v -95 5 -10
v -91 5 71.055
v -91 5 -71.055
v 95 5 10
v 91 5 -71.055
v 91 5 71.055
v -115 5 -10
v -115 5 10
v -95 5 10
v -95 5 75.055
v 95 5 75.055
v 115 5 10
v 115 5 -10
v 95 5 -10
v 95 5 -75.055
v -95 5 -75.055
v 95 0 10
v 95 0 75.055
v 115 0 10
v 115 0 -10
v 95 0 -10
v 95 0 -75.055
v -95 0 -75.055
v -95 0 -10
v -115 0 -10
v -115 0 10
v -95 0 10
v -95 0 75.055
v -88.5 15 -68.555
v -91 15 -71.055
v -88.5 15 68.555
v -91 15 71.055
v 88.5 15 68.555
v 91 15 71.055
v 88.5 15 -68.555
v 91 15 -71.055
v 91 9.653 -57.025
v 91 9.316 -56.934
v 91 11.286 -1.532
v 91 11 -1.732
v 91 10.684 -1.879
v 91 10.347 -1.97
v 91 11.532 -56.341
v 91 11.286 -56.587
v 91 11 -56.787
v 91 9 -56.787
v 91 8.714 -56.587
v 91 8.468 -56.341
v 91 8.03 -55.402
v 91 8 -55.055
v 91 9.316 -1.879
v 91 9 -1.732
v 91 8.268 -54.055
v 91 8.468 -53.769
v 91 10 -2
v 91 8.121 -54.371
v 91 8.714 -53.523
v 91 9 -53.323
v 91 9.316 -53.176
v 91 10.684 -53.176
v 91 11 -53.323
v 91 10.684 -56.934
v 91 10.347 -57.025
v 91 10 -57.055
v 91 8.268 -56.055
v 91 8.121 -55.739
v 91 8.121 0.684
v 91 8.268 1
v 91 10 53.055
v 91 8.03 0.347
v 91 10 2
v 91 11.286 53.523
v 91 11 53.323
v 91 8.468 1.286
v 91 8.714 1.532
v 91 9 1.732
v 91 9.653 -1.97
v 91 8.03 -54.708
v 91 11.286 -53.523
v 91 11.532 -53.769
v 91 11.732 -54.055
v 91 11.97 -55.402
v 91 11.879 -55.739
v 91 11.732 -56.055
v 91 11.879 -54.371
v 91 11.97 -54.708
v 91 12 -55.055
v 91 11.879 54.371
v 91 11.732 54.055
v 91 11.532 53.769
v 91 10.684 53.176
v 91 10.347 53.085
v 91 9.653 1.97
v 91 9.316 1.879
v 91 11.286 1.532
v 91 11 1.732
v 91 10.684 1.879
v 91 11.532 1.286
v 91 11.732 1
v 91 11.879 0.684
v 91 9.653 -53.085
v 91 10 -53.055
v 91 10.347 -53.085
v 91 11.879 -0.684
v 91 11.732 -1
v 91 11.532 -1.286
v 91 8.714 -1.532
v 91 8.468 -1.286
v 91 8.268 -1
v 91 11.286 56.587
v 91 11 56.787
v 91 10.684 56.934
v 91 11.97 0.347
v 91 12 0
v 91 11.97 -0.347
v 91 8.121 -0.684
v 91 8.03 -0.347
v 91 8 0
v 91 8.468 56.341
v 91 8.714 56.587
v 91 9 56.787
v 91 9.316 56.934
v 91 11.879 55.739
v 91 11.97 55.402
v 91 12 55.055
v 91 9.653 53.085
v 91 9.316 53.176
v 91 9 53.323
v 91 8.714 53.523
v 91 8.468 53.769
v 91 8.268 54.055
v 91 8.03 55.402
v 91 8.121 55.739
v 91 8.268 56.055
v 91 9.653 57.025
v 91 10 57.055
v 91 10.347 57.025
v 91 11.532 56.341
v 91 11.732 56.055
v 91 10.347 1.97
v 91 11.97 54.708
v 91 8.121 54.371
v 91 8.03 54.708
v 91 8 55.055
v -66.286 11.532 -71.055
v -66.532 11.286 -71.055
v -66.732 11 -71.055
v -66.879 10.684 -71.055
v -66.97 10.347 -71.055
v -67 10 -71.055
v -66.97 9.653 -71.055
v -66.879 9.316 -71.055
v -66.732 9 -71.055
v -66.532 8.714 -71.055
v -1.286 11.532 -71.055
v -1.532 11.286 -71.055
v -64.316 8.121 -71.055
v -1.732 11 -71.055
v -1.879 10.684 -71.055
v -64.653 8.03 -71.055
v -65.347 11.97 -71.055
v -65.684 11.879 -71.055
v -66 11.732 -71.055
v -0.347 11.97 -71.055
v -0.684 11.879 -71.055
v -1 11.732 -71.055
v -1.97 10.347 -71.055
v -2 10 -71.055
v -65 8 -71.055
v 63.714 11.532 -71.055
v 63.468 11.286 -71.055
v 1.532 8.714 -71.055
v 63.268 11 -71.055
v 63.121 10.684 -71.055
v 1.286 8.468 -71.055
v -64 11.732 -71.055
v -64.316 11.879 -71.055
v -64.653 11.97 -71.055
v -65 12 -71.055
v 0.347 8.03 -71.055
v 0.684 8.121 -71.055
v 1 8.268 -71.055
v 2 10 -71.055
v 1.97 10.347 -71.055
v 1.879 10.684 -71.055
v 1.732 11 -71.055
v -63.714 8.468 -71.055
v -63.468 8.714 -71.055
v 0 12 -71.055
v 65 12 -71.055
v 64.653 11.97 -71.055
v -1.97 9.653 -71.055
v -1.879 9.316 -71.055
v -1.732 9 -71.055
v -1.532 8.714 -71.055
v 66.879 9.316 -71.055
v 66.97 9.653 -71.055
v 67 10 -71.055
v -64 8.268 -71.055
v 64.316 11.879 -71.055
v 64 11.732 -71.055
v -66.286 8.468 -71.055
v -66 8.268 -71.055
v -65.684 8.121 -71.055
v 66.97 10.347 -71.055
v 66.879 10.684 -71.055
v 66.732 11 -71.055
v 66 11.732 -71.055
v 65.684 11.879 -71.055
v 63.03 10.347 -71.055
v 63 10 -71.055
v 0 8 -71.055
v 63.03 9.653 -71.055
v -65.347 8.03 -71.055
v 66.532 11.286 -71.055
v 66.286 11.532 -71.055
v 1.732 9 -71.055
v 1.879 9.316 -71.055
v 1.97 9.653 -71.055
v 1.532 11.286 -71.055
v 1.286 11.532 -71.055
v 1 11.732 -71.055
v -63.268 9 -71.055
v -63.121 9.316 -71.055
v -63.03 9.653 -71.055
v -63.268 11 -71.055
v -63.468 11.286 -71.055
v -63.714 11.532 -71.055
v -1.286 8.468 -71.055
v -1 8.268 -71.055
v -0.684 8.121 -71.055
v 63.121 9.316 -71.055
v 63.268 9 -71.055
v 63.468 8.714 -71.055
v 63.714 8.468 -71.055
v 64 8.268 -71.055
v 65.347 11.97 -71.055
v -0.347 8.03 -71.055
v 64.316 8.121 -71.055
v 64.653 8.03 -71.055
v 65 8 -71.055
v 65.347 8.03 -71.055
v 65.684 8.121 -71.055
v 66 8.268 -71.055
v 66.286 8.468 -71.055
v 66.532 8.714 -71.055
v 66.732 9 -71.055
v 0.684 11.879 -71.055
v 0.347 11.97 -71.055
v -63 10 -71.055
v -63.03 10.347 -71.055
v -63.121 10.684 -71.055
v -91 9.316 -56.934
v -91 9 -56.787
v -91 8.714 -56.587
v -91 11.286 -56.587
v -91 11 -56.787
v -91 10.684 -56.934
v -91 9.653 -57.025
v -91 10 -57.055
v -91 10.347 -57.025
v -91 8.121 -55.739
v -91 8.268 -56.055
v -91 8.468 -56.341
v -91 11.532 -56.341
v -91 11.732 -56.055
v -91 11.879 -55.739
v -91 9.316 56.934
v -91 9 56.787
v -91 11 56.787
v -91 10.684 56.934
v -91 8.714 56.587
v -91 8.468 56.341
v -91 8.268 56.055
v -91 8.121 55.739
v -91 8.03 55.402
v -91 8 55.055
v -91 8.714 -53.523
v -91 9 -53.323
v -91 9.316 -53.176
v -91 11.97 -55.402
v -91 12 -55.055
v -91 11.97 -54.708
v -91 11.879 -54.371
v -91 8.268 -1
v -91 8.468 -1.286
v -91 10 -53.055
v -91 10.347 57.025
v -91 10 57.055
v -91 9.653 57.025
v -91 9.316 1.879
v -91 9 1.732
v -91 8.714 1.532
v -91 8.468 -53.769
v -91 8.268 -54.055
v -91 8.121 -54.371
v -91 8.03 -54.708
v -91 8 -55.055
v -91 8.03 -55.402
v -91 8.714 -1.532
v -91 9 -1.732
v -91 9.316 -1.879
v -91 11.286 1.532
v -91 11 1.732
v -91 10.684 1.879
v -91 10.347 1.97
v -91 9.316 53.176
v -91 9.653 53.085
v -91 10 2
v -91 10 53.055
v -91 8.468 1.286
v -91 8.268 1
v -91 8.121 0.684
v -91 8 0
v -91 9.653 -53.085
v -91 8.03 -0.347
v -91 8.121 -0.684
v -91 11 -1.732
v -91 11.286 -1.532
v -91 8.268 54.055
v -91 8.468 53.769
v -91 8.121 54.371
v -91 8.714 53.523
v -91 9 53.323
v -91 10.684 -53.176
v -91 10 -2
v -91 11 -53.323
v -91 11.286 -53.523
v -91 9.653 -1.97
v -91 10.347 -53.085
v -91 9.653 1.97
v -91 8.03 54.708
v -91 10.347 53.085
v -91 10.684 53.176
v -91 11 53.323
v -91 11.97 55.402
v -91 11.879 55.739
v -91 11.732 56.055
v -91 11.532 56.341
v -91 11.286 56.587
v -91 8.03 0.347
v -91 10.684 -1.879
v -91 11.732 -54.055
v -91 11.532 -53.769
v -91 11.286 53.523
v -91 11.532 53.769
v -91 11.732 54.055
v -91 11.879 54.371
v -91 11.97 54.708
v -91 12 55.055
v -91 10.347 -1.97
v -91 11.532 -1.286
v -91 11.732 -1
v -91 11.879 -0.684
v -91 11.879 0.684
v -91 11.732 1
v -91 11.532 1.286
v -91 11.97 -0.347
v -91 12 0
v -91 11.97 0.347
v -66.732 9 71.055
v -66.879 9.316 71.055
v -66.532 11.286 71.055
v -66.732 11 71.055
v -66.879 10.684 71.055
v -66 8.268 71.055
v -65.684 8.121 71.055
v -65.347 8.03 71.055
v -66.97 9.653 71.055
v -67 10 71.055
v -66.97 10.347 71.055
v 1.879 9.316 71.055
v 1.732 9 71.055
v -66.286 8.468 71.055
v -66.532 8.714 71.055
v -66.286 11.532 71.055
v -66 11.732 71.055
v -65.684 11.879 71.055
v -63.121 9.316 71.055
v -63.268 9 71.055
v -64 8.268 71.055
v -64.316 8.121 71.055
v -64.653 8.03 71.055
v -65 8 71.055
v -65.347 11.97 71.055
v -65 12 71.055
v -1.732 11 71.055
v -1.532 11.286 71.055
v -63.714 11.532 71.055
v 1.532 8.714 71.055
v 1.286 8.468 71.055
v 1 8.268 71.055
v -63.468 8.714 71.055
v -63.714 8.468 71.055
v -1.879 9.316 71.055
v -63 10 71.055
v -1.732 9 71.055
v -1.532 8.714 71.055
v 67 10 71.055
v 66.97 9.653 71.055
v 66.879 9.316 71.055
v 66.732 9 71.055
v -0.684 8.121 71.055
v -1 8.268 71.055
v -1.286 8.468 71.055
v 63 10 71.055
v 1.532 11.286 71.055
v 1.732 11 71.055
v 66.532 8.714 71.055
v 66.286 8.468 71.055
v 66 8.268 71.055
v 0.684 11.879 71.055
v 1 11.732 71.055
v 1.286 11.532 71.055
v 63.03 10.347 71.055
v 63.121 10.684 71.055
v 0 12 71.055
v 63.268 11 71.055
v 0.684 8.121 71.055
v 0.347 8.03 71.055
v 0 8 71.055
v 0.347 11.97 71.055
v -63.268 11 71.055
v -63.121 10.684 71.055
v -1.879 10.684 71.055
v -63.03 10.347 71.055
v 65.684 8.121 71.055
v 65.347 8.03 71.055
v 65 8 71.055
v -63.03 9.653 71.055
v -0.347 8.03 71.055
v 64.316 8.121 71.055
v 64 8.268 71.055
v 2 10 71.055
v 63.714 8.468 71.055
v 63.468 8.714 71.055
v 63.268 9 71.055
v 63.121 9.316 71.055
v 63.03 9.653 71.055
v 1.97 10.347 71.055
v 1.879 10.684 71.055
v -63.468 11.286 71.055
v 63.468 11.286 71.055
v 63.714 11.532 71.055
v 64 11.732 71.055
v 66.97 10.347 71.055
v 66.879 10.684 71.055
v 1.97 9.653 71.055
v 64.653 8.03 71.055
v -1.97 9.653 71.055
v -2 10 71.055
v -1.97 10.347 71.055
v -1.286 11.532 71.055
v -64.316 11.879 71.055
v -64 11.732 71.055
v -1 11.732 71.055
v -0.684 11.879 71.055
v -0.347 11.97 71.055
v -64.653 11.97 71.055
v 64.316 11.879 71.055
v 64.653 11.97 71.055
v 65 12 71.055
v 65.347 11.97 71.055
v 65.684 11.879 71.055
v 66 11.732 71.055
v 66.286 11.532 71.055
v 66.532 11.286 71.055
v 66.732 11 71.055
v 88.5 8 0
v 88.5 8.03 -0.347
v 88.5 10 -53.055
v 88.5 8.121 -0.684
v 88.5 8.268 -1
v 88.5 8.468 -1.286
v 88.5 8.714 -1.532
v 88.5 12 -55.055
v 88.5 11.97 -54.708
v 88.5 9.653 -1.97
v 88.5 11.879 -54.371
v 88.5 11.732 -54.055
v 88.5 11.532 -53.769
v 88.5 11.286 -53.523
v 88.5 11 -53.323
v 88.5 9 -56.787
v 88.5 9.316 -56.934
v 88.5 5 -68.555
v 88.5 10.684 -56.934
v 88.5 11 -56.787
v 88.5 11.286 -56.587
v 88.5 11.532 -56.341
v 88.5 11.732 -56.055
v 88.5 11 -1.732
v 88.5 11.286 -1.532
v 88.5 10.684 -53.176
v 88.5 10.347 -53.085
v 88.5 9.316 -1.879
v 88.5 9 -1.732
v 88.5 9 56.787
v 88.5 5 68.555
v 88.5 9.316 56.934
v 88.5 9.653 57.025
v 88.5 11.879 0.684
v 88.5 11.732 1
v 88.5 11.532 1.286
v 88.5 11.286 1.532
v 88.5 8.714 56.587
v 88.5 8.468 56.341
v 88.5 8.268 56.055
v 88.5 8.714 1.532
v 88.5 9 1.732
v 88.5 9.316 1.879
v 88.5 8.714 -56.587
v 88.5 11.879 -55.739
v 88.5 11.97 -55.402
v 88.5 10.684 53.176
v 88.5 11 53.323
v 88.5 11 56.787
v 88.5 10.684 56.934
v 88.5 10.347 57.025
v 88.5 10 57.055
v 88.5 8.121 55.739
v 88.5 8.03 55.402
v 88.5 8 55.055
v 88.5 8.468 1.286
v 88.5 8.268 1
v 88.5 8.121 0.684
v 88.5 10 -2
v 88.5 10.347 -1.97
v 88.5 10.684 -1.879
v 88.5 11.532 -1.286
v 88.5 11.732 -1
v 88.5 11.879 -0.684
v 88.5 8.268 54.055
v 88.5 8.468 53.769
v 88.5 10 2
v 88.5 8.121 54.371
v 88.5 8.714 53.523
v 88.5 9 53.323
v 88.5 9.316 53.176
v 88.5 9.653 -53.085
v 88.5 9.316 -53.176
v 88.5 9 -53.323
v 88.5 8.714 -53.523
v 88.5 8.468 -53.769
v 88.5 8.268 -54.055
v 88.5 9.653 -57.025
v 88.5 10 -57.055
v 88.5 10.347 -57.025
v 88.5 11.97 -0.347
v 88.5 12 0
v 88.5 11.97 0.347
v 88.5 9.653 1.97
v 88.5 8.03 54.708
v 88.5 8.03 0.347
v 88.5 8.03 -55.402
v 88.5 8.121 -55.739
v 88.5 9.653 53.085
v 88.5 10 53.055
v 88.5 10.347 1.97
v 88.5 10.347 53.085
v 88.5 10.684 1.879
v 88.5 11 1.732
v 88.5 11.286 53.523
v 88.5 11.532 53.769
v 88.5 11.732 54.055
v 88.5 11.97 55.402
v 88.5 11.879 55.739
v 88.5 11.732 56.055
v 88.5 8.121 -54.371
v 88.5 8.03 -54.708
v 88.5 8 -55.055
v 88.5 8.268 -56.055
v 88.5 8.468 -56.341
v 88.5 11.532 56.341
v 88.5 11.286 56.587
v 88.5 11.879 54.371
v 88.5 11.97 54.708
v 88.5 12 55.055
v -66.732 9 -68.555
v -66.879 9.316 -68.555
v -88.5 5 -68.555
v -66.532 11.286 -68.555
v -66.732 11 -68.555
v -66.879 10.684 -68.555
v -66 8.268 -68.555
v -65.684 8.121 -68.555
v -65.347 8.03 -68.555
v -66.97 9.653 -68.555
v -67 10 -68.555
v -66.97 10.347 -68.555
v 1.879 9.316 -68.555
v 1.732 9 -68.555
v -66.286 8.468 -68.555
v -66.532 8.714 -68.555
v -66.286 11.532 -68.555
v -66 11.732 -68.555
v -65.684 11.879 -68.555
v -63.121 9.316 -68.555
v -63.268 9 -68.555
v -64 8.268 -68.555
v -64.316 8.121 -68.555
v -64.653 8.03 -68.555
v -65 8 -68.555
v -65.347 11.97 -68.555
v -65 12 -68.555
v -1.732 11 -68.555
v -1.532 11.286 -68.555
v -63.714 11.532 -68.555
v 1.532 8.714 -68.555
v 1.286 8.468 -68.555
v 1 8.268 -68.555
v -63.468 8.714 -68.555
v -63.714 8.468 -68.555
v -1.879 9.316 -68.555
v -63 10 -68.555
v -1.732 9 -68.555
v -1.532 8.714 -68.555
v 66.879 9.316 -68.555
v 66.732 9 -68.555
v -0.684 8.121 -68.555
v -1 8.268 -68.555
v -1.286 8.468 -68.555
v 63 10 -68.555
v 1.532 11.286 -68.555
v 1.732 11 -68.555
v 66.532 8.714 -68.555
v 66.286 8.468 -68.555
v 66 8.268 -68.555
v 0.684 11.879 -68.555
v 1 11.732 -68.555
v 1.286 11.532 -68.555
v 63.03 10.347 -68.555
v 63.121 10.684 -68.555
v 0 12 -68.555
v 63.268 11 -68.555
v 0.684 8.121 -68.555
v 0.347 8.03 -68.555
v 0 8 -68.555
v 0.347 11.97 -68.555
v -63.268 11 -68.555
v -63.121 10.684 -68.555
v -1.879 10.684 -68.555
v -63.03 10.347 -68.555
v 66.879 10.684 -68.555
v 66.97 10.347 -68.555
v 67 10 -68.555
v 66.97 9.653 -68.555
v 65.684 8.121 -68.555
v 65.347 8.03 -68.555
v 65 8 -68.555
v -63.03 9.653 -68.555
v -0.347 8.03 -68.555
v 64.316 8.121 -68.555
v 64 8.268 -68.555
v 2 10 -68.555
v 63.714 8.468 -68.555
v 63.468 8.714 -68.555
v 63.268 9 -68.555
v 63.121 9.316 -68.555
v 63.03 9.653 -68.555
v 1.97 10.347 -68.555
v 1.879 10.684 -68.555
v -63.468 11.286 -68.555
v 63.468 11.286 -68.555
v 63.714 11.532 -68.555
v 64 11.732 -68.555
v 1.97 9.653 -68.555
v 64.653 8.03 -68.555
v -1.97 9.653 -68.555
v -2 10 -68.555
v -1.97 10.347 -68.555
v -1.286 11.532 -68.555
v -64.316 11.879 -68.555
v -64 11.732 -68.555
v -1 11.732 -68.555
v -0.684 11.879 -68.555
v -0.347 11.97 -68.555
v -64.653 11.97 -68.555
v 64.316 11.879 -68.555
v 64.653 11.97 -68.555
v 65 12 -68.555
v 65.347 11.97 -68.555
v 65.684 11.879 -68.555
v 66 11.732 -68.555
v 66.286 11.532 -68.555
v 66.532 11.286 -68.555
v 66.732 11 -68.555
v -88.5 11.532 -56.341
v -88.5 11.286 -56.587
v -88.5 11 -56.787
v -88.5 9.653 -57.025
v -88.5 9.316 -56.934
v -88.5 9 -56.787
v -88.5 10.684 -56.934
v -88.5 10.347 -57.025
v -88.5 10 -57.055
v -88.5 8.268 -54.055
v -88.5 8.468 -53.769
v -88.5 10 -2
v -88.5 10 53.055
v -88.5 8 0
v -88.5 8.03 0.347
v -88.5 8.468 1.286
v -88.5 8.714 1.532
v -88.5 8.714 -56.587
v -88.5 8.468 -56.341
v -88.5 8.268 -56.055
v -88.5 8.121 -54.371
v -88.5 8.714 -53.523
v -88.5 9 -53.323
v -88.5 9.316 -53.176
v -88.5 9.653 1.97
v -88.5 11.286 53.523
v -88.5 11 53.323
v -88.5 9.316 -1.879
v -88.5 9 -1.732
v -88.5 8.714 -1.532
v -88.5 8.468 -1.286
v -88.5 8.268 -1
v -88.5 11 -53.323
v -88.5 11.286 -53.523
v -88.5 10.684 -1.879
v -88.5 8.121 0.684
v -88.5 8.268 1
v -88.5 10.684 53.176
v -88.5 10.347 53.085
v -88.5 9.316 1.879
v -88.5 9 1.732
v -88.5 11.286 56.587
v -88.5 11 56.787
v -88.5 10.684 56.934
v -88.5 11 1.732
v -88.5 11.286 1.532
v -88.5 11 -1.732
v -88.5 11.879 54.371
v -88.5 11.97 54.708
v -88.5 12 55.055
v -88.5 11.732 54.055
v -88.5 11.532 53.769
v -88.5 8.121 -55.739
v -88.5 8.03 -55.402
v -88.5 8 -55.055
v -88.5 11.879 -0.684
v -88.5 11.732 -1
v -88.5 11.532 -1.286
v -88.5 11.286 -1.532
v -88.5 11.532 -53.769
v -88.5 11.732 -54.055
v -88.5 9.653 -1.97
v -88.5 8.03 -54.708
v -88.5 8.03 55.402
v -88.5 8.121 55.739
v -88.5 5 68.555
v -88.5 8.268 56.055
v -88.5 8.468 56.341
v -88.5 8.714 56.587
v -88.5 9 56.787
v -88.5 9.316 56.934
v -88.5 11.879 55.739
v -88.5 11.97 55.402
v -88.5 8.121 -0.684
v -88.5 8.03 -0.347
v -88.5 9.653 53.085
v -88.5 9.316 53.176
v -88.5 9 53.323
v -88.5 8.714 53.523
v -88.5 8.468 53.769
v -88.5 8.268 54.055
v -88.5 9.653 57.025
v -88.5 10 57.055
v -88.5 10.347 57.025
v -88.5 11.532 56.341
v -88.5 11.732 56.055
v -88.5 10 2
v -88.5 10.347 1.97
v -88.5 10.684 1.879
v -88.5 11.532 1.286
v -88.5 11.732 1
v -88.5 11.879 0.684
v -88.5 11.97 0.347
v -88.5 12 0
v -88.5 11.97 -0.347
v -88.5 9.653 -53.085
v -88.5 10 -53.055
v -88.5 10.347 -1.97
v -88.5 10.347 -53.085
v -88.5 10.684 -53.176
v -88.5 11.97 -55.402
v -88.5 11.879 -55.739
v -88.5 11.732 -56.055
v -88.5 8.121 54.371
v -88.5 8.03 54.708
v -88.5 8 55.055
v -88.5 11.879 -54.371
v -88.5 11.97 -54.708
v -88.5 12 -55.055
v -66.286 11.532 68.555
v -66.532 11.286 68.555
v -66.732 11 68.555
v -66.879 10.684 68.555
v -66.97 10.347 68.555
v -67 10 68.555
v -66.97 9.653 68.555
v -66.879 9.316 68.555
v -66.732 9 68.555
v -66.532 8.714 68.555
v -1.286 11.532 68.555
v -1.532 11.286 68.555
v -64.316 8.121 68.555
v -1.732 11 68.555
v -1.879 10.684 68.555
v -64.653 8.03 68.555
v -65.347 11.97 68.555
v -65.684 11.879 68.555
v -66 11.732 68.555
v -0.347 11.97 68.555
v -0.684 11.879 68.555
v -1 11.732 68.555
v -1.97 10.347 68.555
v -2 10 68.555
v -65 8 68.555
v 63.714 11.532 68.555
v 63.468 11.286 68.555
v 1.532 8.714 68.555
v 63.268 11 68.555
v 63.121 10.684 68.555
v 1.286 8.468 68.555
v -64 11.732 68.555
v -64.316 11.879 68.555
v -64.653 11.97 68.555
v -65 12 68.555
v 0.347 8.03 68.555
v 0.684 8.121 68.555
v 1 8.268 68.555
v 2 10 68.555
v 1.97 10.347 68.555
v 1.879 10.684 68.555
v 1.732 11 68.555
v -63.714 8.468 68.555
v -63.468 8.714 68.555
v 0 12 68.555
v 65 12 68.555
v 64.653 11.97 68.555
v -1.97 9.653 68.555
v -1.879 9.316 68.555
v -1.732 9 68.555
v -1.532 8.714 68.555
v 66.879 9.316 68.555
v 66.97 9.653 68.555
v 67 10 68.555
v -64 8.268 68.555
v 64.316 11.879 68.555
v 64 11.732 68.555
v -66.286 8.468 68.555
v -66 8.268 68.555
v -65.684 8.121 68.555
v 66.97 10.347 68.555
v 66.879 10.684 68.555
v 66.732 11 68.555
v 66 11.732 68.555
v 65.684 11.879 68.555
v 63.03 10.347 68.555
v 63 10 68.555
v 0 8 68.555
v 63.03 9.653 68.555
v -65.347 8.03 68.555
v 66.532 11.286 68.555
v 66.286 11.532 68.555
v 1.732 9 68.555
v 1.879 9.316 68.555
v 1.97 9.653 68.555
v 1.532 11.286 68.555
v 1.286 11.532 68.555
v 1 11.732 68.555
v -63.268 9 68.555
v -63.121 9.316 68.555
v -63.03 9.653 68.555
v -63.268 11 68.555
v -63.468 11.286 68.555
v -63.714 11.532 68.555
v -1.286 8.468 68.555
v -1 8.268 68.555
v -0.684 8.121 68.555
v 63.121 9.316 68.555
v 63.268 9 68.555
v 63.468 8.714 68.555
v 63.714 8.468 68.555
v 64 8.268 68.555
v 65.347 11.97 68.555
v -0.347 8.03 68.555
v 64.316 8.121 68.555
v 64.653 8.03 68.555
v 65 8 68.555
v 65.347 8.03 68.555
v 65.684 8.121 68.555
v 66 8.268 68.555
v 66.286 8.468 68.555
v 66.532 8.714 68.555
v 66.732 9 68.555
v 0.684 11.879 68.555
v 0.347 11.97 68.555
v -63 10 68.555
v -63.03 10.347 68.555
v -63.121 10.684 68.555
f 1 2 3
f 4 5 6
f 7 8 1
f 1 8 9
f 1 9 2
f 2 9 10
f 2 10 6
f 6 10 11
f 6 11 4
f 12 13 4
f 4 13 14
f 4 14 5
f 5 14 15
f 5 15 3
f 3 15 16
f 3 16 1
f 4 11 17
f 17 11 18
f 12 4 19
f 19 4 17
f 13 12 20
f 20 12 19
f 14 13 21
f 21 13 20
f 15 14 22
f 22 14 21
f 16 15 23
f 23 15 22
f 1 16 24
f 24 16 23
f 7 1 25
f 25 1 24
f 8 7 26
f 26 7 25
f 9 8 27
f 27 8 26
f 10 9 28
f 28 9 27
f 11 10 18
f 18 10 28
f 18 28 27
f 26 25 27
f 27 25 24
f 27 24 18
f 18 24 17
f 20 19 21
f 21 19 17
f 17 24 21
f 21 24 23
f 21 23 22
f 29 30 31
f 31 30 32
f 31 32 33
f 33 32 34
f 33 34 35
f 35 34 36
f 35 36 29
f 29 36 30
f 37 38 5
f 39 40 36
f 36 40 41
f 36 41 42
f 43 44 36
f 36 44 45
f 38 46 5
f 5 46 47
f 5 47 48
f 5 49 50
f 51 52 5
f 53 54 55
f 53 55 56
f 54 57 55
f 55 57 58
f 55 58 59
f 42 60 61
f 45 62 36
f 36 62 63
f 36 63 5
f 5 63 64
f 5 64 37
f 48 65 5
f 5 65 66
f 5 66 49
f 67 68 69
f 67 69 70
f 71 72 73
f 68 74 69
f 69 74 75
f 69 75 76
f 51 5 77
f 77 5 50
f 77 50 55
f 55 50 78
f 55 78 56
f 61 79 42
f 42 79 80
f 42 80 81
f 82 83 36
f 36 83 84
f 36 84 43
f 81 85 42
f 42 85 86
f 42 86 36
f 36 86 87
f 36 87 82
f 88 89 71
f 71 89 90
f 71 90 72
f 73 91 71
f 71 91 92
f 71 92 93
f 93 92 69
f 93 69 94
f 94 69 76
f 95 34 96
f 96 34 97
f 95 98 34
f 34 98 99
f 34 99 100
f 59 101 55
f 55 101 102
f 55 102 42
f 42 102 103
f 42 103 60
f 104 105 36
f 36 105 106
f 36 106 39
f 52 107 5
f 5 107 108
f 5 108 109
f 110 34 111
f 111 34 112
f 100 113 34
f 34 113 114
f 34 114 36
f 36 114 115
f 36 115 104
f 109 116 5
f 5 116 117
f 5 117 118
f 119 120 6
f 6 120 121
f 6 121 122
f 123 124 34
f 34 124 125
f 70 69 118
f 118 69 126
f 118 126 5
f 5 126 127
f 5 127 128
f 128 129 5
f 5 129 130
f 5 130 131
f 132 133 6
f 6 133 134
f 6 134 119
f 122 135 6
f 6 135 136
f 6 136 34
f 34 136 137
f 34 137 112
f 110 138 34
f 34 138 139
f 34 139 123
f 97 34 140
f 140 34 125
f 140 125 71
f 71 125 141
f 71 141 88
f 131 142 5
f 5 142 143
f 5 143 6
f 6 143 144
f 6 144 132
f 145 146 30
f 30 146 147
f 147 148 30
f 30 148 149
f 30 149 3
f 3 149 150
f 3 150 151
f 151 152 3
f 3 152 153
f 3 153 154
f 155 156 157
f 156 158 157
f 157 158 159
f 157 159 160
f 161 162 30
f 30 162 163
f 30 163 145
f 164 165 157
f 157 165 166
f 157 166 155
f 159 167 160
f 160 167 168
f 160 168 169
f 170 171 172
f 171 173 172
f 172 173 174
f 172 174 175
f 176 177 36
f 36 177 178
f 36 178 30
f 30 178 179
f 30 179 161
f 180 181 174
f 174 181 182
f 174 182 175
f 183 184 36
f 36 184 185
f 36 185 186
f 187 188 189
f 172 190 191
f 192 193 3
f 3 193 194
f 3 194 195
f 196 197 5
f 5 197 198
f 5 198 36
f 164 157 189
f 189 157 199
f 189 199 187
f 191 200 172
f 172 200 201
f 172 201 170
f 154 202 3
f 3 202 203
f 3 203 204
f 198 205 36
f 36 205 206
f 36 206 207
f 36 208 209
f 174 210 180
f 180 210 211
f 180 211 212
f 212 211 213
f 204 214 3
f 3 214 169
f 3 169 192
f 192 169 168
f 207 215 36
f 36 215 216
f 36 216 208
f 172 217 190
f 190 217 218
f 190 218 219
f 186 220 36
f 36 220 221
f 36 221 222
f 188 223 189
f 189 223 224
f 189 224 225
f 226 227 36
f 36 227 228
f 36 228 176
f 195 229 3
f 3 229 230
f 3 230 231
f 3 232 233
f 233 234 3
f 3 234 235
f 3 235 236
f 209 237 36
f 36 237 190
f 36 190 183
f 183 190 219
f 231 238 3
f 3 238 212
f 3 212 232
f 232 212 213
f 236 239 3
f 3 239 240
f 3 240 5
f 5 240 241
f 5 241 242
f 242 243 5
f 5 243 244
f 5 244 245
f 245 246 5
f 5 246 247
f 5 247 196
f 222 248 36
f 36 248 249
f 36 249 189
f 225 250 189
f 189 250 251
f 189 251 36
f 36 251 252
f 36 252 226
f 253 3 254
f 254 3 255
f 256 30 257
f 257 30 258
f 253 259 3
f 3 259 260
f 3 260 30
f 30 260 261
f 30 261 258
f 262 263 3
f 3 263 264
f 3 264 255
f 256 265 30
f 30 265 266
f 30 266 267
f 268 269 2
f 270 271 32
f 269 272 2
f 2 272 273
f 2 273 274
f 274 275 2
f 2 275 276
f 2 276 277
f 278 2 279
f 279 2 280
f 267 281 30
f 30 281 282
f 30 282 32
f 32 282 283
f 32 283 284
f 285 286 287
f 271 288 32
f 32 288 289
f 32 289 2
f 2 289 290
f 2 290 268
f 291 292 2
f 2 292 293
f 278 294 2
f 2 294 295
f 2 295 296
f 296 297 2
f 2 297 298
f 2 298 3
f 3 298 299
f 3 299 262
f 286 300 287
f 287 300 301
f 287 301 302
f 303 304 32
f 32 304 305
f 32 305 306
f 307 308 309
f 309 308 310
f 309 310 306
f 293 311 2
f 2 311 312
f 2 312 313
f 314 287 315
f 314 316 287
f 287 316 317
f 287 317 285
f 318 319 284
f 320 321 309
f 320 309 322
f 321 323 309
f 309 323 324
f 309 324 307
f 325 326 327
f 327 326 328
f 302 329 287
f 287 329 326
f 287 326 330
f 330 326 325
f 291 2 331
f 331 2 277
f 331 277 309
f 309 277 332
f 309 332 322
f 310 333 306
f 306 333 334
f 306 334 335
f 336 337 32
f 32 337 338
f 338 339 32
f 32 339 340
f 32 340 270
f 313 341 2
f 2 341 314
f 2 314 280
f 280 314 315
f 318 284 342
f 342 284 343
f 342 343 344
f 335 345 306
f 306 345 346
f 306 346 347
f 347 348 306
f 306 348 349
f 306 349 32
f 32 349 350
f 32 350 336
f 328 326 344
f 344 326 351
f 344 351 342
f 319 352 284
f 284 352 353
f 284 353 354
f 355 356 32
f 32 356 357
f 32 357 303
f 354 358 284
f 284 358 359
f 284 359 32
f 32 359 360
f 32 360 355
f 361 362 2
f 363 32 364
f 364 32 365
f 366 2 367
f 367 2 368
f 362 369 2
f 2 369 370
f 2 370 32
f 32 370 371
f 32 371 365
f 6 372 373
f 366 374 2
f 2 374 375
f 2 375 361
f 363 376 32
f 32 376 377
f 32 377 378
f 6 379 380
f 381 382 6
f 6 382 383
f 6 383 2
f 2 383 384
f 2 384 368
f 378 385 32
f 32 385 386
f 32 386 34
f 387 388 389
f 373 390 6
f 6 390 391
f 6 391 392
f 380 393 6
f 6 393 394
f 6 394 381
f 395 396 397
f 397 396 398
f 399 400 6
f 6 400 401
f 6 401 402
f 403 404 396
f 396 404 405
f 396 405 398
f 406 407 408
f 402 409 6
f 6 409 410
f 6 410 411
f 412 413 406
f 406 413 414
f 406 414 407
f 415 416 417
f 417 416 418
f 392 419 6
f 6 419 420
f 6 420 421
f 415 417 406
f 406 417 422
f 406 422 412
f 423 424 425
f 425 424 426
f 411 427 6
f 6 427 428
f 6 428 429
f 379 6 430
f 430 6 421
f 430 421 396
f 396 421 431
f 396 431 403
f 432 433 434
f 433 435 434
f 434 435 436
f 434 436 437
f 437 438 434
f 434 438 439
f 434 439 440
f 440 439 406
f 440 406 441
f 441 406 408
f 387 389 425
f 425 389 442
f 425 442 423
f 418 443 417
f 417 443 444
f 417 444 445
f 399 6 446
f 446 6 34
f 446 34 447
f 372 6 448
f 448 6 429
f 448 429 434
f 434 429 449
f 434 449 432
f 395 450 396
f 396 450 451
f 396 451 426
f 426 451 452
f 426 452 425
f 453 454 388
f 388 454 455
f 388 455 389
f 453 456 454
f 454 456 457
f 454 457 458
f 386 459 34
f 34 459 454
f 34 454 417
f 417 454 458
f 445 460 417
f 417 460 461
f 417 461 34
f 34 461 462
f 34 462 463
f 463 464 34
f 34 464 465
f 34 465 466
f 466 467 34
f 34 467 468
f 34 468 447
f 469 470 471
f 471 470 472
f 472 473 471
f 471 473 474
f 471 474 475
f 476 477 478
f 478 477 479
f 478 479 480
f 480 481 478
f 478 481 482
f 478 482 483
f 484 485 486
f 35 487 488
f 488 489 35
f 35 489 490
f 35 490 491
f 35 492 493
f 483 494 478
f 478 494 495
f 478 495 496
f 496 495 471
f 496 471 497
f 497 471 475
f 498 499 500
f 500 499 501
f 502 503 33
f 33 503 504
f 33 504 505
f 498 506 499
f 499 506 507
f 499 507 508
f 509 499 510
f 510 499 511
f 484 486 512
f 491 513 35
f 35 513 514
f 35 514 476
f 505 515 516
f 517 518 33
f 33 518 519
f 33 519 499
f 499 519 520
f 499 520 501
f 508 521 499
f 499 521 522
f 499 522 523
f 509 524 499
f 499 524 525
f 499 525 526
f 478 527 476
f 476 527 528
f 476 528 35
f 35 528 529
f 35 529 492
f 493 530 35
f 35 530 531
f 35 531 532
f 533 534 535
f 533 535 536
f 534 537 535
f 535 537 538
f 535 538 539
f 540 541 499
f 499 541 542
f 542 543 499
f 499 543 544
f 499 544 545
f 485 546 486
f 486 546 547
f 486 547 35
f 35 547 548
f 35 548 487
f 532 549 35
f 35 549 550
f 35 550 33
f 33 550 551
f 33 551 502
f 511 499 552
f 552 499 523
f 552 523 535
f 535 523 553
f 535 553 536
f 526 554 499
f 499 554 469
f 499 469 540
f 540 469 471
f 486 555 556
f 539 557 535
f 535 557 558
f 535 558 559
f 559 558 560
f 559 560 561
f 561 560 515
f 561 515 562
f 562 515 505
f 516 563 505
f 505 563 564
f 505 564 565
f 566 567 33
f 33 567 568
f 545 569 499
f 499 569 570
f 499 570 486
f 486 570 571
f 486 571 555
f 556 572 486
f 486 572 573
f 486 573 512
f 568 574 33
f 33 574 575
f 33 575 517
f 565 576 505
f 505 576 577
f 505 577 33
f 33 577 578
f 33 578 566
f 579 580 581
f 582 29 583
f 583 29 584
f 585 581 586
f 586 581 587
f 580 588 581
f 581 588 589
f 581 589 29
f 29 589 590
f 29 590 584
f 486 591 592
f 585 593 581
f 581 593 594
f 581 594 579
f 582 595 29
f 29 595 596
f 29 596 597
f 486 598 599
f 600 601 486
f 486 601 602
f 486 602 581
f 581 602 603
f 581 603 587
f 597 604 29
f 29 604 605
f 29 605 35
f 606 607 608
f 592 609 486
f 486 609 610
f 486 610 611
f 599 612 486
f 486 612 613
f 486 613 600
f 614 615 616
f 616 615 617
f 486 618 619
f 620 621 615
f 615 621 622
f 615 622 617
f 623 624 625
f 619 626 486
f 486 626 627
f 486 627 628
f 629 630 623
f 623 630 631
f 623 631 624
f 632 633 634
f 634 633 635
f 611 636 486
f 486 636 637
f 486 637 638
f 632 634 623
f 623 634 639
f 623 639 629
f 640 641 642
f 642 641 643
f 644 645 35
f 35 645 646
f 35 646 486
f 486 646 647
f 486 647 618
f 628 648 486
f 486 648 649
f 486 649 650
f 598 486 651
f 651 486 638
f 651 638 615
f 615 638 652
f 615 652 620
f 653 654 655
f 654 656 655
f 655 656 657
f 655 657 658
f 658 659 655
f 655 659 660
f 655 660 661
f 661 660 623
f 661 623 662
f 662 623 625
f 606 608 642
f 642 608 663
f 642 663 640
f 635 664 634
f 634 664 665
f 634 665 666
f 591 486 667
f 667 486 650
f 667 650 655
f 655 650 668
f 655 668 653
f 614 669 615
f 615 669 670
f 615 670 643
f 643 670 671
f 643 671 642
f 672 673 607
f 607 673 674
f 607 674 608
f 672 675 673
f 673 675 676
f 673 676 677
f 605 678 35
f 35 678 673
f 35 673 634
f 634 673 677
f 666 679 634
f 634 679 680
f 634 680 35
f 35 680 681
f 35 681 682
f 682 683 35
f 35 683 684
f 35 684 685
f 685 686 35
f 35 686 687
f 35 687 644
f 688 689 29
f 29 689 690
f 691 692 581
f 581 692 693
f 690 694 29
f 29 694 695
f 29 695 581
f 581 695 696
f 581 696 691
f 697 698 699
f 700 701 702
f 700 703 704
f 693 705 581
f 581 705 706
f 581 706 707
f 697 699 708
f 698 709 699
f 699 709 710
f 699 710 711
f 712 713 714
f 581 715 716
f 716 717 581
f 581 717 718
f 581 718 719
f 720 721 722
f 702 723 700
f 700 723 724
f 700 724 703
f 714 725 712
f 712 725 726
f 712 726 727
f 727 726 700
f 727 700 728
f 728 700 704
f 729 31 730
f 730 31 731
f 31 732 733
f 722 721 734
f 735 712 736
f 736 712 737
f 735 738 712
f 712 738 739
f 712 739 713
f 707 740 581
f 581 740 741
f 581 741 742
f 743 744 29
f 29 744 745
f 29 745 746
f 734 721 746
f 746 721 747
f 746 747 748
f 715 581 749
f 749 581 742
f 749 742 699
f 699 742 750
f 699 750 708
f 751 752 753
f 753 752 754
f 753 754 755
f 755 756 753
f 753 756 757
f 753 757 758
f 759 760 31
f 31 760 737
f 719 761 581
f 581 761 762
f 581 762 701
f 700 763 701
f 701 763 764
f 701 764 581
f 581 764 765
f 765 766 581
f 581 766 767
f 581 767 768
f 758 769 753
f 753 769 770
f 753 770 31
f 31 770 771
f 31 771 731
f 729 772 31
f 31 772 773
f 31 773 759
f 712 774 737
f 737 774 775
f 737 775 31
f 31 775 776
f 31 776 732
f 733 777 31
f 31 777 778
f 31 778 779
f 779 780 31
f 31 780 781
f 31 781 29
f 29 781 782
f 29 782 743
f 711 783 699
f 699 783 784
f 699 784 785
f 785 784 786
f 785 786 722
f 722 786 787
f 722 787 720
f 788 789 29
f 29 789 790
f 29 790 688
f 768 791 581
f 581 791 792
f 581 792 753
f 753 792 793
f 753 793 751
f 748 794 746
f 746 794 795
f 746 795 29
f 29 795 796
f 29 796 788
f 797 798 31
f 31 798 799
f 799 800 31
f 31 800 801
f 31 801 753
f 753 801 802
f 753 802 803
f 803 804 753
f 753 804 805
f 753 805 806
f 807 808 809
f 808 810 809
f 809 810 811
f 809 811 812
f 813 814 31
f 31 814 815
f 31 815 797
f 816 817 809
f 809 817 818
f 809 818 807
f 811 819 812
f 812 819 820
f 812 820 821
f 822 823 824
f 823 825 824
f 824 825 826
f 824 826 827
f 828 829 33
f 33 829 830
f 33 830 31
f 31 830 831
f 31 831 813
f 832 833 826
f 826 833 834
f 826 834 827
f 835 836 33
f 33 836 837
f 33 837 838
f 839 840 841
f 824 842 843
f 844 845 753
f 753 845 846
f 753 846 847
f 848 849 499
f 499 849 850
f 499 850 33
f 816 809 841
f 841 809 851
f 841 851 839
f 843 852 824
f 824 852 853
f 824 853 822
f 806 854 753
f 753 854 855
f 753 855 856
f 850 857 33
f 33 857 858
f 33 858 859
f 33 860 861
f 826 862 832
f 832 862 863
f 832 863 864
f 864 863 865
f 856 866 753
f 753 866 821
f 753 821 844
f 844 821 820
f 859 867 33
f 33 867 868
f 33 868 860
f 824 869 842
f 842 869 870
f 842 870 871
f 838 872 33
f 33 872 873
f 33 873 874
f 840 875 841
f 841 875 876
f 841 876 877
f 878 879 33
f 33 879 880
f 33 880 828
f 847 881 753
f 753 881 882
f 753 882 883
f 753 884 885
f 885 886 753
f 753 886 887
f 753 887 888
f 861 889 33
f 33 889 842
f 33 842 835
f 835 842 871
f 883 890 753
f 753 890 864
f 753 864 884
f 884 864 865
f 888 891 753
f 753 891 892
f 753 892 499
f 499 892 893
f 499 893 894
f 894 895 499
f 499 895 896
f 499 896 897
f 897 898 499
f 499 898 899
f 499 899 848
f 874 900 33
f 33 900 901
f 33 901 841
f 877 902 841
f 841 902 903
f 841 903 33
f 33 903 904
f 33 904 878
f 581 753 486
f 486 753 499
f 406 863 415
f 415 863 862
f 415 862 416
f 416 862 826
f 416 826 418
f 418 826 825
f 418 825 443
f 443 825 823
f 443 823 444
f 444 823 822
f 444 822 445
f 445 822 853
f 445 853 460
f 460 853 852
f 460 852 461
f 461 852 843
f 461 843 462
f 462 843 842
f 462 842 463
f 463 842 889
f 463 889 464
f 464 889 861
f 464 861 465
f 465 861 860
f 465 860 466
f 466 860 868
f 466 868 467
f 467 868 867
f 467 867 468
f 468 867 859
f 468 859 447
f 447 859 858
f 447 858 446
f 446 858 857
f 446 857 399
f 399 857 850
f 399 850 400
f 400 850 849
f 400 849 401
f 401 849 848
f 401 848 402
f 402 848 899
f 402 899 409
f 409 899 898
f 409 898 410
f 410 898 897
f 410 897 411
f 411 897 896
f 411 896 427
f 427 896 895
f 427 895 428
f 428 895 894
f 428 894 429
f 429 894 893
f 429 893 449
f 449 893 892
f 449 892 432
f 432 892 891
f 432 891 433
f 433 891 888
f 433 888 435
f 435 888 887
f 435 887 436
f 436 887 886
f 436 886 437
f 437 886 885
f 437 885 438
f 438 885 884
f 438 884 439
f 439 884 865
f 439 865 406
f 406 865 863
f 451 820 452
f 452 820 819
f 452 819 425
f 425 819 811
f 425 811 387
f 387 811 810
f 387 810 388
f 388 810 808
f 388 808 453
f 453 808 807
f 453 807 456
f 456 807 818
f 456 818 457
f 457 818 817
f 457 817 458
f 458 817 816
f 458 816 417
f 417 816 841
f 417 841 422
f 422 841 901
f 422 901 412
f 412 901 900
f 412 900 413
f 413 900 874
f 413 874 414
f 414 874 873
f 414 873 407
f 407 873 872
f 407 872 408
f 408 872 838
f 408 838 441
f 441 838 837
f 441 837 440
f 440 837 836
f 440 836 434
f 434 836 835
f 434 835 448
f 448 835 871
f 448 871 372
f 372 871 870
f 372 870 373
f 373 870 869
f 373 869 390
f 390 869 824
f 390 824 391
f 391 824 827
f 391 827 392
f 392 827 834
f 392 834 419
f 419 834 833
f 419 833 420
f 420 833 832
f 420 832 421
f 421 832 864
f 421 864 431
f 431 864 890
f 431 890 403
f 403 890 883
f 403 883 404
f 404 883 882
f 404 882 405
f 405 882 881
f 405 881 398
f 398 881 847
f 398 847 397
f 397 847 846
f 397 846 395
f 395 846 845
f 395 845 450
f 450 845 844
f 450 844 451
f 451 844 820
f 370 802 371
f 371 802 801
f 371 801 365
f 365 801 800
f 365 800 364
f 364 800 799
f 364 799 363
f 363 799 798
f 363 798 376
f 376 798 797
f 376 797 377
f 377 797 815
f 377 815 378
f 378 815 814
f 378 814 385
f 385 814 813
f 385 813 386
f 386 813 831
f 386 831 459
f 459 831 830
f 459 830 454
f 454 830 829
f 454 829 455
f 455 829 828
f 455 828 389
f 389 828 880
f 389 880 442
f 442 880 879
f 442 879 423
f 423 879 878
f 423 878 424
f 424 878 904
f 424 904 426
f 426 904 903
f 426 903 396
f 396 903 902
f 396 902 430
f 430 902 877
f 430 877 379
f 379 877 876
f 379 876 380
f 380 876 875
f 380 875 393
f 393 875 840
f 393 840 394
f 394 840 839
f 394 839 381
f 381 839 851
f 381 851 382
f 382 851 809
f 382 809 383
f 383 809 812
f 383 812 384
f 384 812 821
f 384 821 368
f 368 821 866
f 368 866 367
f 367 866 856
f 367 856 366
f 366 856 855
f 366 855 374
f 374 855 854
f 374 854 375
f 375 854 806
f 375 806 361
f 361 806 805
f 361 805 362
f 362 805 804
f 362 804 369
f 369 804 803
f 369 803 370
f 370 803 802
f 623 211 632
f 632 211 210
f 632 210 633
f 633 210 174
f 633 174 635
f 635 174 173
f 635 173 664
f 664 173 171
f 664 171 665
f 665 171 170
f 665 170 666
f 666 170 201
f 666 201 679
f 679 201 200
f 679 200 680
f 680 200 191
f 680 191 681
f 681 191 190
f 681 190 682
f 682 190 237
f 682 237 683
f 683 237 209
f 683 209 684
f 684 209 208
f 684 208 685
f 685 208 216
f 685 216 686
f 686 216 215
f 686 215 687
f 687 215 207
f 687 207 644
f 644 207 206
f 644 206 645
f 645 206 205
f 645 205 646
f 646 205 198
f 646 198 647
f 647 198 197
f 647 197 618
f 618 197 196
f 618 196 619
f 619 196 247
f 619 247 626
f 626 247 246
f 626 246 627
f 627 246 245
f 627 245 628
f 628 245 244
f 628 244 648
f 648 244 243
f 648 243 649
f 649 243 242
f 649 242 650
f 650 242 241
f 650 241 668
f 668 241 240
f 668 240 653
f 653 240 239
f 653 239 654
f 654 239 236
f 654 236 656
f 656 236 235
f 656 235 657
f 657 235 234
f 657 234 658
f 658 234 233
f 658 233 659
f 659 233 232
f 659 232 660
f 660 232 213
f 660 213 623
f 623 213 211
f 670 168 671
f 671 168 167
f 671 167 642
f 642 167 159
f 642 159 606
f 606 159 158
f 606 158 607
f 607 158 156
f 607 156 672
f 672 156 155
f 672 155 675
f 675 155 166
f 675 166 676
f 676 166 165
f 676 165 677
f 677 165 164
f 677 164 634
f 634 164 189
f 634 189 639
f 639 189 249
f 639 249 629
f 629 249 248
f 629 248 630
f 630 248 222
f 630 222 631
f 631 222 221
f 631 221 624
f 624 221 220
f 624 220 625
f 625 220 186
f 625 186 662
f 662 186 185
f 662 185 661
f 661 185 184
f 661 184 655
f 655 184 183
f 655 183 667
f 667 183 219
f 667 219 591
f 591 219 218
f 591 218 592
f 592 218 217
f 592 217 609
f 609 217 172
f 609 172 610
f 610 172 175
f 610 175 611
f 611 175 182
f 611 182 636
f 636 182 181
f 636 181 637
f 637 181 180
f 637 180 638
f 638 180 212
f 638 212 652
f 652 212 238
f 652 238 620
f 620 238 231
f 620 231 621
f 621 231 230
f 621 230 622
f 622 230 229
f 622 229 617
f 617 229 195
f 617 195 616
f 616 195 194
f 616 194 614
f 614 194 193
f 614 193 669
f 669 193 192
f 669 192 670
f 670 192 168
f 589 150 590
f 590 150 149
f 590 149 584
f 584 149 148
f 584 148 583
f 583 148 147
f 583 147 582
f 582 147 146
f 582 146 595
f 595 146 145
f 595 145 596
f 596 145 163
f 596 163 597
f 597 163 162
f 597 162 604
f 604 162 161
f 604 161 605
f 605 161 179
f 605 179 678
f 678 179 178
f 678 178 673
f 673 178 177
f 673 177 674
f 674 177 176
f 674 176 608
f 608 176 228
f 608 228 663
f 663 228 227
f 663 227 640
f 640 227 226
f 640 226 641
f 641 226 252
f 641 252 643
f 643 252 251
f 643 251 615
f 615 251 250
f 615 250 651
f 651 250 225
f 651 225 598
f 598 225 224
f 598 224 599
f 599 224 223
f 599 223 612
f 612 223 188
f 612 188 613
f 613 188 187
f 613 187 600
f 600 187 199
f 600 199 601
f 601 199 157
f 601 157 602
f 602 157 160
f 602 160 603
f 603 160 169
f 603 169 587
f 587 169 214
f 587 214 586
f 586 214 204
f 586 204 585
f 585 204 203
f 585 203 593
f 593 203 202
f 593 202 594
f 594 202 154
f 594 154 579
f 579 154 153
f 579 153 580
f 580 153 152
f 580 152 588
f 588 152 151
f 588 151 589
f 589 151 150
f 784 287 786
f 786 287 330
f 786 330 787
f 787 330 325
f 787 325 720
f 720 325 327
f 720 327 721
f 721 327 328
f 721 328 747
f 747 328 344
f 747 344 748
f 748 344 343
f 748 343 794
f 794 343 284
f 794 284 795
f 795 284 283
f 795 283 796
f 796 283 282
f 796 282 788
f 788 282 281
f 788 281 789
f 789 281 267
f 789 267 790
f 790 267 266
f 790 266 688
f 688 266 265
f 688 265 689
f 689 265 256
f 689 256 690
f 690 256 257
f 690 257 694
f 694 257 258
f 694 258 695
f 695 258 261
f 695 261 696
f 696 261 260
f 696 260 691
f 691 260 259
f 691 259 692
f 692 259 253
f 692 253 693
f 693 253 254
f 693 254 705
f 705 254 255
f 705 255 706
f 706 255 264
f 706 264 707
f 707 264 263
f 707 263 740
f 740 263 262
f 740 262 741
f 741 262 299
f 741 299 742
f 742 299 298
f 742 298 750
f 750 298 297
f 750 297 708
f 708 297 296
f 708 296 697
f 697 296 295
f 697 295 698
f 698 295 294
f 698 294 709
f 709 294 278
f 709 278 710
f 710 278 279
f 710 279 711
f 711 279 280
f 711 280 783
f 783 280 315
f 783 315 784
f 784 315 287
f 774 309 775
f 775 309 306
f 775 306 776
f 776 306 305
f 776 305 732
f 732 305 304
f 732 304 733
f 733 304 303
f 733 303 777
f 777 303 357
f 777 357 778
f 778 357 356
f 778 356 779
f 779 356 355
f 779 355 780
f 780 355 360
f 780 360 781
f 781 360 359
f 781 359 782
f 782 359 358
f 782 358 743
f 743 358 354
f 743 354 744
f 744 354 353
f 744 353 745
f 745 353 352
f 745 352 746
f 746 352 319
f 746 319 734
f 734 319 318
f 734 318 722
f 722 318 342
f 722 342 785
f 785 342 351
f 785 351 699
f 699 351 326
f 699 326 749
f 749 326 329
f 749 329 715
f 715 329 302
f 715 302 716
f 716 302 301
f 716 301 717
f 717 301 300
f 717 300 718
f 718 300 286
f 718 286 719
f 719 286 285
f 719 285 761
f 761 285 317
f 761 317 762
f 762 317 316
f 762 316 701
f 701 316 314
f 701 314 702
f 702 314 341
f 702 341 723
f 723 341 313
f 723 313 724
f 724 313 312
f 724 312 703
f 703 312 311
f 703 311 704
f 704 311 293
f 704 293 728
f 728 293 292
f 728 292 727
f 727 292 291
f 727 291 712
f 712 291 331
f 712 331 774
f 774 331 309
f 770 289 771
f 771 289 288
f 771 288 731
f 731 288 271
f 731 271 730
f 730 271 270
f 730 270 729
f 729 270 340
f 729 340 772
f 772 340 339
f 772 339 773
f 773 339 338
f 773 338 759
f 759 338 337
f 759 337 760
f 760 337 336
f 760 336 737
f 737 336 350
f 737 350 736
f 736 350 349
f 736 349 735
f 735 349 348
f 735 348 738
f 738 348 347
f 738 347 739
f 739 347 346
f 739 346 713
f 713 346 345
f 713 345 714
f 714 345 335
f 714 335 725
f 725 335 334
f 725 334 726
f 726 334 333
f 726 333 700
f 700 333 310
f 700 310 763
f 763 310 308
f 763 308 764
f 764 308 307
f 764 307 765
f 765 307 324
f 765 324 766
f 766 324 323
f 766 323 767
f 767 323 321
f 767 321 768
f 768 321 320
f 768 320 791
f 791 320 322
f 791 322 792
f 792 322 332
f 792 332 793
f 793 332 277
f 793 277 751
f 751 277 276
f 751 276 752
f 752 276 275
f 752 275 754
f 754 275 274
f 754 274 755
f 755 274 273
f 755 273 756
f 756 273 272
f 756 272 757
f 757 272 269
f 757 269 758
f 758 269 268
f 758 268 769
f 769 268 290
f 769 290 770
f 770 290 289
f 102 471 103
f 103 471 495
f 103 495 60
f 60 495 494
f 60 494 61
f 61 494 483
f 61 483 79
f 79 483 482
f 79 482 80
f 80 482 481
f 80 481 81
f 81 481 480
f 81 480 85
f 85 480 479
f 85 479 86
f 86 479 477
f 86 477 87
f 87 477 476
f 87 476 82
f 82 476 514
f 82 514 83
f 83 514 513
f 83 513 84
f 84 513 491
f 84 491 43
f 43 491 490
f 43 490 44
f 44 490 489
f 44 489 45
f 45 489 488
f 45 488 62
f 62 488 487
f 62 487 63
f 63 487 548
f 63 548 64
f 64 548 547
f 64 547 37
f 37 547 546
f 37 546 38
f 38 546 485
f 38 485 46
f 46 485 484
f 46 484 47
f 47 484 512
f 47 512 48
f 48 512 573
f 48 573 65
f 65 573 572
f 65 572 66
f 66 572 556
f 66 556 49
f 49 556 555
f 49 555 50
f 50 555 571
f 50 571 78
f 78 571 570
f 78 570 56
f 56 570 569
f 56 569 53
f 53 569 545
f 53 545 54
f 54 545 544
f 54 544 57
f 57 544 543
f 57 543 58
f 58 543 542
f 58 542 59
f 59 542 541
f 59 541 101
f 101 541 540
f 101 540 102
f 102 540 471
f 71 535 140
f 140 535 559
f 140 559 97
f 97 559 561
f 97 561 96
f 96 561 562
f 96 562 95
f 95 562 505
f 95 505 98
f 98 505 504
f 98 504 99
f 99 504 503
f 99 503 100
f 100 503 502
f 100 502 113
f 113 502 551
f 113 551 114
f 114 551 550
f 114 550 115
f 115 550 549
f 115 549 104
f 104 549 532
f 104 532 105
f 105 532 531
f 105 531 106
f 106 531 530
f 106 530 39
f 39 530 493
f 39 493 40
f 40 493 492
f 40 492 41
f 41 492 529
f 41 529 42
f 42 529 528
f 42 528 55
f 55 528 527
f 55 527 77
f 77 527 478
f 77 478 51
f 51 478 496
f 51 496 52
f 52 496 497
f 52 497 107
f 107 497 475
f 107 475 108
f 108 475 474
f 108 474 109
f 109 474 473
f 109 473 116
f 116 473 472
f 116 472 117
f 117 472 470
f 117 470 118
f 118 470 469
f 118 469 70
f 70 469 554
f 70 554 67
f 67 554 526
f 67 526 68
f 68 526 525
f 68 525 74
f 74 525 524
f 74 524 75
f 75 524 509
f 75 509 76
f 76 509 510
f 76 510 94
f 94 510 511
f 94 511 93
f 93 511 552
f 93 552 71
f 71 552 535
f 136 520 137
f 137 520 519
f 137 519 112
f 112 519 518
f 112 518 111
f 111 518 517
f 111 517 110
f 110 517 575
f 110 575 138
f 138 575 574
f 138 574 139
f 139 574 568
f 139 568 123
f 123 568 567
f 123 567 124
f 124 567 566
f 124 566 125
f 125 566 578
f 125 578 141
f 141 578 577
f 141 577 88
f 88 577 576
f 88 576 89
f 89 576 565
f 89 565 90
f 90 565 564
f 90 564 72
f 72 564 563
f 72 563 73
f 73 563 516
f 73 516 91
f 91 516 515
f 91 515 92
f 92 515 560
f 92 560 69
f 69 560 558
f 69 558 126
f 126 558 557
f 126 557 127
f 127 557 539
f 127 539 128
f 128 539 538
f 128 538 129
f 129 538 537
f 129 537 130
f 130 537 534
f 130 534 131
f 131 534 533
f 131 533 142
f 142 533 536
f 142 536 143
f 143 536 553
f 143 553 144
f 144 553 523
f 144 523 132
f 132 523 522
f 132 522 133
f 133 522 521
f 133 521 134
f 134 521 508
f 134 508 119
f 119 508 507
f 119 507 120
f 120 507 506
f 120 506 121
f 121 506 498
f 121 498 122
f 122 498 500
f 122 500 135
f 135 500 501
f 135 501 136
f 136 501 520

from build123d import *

# Parameters (mm, degrees)
BOSS_EXTRUDE1_DEPTH = 5
SKETCH3_W           = 182
SKETCH3_H           = 142.11
SKETCH3_W_2         = 177
SKETCH3_H_2         = 137.11
BOSS_EXTRUDE2_DEPTH = 10
SKETCH6_R           = 2
CUT_EXTRUDE3_DEPTH  = 211
SKETCH8_R           = 2
CUT_EXTRUDE4_DEPTH  = 211


with BuildPart() as part:
    # Sketch1 → Boss-Extrude1 (new body)
    with BuildSketch(Plane(origin=(0, 0, 0), x_dir=(1, 0, 0), z_dir=(0, 1, 0))):
        Polygon((-95, 75.055), (95, 75.055), (95, 10), (115, 10), (115, -10), (95, -10), (95, -75.055), (-95, -75.055), (-95, -10), (-115, -10), (-115, 10), (-95, 10), align=None)
    extrude(amount=BOSS_EXTRUDE1_DEPTH)

    # Sketch3 → Boss-Extrude2 (add)
    with BuildSketch(Plane(origin=(0, 5, 0), x_dir=(1, 0, 0), z_dir=(0, 1, 0))):
        Rectangle(SKETCH3_W, SKETCH3_H)
        Rectangle(SKETCH3_W_2, SKETCH3_H_2, mode=Mode.SUBTRACT)
    extrude(amount=BOSS_EXTRUDE2_DEPTH)

    # Sketch6 → Cut-Extrude3 (cut)
    with BuildSketch(Plane(origin=(0, 0, -75.055), x_dir=(-1, 0, 0), z_dir=(0, 0, -1))):
        with Locations((65, 10)):
            Circle(SKETCH6_R)
        with Locations((0, 10)):
            Circle(SKETCH6_R)
        with Locations((-65, 10)):
            Circle(SKETCH6_R)
    extrude(amount=-CUT_EXTRUDE3_DEPTH, mode=Mode.SUBTRACT)

    # Sketch8 → Cut-Extrude4 (cut)
    with BuildSketch(Plane.ZY.offset(95)):
        with Locations(Location((55.055, 10, 0), (0, 0, 180))):
            Circle(SKETCH8_R)
        with Locations(Location((0, 10, 0), (0, 0, 180))):
            Circle(SKETCH8_R)
        with Locations(Location((-55.055, 10, 0), (0, 0, 180))):
            Circle(SKETCH8_R)
    extrude(amount=-CUT_EXTRUDE4_DEPTH, mode=Mode.SUBTRACT)


solid = part.part
